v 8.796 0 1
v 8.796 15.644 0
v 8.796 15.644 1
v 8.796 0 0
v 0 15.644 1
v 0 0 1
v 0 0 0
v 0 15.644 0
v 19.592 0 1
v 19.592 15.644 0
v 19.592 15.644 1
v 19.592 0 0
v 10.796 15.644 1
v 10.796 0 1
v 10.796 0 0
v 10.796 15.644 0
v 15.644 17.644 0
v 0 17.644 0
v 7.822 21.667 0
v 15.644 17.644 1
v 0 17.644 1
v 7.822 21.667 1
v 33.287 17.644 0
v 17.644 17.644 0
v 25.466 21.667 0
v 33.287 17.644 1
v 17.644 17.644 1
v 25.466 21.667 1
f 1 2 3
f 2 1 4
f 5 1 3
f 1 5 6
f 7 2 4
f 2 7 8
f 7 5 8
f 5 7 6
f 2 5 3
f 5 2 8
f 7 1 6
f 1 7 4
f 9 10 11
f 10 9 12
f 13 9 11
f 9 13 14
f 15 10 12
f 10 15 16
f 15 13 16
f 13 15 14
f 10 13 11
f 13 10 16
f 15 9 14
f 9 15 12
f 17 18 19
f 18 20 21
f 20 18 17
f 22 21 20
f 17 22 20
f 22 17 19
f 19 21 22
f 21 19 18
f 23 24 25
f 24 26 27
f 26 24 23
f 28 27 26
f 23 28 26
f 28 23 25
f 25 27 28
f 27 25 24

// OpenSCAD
/*
 * PROMPT: Roof parts and assembled roof of the Polish outdoor toilet (sławojka) in H0
 * scale (1:87). Gabled roof with 1.5 mm overhang on all sides. Provides flat printable
 * panels (two slope rectangles + two gable triangles) and an assembled polyhedron
 * module for use in the assembly file. Print layout: all four panels laid flat.
 */

$fn = 32;
S = 1/87;
panel_t = 1.0;

bld_w_real   = 1100;
bld_d_real   = 1100;
bld_h_real   = 2000;
roof_oh      = 1.5;
roof_rise    = 350 * S;

bld_w = bld_w_real * S;
bld_d = bld_d_real * S;
bld_h = bld_h_real * S;

rw       = bld_w + 2*roof_oh;
rd       = bld_d + 2*roof_oh;
slope_w  = sqrt(pow(rw/2, 2) + pow(roof_rise, 2));

// One slope panel printed flat (both slopes are identical rectangles)
module roof_slope() {
    cube([slope_w, rd, panel_t]);
}

// One gable triangle panel printed flat
module roof_gable() {
    linear_extrude(panel_t)
        polygon([[0, 0], [rw, 0], [rw/2, roof_rise]]);
}

// Full assembled roof as polyhedron — used by the assembly file, not for printing
module roof_assembled() {
    translate([-roof_oh, -roof_oh, bld_h])
        polyhedron(
            points = [
                [0,    0,         0],
                [rw,   0,         0],
                [rw,   rd,        0],
                [0,    rd,        0],
                [rw/2, 0,  roof_rise],
                [rw/2, rd, roof_rise],
            ],
            faces = [
                [0, 3, 2, 1],
                [0, 1, 4],
                [3, 5, 2],
                [1, 2, 5, 4],
                [0, 4, 5, 3],
            ]
        );
}

// ── PRINT LAYOUT ──────────────────────────────────────────────────────────────
// Two slope panels side by side, two gable triangles below
roof_slope();
translate([slope_w + 2, 0, 0])
    roof_slope();
translate([0, rd + 2, 0])
    roof_gable();
translate([rw + 2, rd + 2, 0])
    roof_gable();
